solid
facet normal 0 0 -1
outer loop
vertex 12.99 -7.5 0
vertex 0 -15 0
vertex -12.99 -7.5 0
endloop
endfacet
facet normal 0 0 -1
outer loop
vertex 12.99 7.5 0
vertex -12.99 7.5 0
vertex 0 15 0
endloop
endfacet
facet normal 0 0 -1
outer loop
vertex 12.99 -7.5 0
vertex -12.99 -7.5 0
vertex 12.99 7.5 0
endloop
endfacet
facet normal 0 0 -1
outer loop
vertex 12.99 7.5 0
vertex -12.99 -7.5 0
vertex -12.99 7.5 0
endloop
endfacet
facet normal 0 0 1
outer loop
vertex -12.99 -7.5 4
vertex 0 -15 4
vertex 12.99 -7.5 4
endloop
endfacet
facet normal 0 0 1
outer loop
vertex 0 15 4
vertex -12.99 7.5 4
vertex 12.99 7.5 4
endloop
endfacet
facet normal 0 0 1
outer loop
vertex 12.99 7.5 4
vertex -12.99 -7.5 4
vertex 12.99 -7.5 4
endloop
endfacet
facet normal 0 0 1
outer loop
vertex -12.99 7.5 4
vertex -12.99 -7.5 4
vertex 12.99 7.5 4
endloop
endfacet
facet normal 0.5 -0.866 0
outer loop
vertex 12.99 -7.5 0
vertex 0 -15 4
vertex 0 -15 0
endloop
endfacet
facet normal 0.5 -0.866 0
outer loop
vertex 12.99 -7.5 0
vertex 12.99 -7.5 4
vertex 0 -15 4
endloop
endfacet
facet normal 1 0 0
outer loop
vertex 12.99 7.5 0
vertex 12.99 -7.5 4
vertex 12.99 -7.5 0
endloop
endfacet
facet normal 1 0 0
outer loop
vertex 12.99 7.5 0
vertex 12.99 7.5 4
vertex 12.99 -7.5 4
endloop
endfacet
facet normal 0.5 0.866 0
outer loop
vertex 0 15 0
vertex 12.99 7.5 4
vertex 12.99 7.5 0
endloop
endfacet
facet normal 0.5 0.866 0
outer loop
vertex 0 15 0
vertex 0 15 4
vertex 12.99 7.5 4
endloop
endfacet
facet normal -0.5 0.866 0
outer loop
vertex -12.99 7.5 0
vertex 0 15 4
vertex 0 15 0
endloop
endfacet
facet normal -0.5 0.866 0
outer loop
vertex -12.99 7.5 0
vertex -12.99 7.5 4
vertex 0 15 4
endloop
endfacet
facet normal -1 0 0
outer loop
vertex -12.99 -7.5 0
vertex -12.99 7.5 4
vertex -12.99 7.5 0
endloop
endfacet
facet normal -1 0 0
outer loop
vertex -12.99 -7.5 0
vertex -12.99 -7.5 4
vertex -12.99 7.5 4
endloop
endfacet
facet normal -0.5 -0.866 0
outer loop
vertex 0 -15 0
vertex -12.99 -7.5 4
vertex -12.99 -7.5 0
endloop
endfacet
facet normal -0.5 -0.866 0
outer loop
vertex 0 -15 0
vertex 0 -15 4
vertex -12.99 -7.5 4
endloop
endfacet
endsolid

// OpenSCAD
color("Peru", 1.0)
{
    rotate(a = [0, 0, -90])
    linear_extrude(height = 4, center = false, convexity = 10, twist = 0)
    circle(r=15, $fn=6);
}
